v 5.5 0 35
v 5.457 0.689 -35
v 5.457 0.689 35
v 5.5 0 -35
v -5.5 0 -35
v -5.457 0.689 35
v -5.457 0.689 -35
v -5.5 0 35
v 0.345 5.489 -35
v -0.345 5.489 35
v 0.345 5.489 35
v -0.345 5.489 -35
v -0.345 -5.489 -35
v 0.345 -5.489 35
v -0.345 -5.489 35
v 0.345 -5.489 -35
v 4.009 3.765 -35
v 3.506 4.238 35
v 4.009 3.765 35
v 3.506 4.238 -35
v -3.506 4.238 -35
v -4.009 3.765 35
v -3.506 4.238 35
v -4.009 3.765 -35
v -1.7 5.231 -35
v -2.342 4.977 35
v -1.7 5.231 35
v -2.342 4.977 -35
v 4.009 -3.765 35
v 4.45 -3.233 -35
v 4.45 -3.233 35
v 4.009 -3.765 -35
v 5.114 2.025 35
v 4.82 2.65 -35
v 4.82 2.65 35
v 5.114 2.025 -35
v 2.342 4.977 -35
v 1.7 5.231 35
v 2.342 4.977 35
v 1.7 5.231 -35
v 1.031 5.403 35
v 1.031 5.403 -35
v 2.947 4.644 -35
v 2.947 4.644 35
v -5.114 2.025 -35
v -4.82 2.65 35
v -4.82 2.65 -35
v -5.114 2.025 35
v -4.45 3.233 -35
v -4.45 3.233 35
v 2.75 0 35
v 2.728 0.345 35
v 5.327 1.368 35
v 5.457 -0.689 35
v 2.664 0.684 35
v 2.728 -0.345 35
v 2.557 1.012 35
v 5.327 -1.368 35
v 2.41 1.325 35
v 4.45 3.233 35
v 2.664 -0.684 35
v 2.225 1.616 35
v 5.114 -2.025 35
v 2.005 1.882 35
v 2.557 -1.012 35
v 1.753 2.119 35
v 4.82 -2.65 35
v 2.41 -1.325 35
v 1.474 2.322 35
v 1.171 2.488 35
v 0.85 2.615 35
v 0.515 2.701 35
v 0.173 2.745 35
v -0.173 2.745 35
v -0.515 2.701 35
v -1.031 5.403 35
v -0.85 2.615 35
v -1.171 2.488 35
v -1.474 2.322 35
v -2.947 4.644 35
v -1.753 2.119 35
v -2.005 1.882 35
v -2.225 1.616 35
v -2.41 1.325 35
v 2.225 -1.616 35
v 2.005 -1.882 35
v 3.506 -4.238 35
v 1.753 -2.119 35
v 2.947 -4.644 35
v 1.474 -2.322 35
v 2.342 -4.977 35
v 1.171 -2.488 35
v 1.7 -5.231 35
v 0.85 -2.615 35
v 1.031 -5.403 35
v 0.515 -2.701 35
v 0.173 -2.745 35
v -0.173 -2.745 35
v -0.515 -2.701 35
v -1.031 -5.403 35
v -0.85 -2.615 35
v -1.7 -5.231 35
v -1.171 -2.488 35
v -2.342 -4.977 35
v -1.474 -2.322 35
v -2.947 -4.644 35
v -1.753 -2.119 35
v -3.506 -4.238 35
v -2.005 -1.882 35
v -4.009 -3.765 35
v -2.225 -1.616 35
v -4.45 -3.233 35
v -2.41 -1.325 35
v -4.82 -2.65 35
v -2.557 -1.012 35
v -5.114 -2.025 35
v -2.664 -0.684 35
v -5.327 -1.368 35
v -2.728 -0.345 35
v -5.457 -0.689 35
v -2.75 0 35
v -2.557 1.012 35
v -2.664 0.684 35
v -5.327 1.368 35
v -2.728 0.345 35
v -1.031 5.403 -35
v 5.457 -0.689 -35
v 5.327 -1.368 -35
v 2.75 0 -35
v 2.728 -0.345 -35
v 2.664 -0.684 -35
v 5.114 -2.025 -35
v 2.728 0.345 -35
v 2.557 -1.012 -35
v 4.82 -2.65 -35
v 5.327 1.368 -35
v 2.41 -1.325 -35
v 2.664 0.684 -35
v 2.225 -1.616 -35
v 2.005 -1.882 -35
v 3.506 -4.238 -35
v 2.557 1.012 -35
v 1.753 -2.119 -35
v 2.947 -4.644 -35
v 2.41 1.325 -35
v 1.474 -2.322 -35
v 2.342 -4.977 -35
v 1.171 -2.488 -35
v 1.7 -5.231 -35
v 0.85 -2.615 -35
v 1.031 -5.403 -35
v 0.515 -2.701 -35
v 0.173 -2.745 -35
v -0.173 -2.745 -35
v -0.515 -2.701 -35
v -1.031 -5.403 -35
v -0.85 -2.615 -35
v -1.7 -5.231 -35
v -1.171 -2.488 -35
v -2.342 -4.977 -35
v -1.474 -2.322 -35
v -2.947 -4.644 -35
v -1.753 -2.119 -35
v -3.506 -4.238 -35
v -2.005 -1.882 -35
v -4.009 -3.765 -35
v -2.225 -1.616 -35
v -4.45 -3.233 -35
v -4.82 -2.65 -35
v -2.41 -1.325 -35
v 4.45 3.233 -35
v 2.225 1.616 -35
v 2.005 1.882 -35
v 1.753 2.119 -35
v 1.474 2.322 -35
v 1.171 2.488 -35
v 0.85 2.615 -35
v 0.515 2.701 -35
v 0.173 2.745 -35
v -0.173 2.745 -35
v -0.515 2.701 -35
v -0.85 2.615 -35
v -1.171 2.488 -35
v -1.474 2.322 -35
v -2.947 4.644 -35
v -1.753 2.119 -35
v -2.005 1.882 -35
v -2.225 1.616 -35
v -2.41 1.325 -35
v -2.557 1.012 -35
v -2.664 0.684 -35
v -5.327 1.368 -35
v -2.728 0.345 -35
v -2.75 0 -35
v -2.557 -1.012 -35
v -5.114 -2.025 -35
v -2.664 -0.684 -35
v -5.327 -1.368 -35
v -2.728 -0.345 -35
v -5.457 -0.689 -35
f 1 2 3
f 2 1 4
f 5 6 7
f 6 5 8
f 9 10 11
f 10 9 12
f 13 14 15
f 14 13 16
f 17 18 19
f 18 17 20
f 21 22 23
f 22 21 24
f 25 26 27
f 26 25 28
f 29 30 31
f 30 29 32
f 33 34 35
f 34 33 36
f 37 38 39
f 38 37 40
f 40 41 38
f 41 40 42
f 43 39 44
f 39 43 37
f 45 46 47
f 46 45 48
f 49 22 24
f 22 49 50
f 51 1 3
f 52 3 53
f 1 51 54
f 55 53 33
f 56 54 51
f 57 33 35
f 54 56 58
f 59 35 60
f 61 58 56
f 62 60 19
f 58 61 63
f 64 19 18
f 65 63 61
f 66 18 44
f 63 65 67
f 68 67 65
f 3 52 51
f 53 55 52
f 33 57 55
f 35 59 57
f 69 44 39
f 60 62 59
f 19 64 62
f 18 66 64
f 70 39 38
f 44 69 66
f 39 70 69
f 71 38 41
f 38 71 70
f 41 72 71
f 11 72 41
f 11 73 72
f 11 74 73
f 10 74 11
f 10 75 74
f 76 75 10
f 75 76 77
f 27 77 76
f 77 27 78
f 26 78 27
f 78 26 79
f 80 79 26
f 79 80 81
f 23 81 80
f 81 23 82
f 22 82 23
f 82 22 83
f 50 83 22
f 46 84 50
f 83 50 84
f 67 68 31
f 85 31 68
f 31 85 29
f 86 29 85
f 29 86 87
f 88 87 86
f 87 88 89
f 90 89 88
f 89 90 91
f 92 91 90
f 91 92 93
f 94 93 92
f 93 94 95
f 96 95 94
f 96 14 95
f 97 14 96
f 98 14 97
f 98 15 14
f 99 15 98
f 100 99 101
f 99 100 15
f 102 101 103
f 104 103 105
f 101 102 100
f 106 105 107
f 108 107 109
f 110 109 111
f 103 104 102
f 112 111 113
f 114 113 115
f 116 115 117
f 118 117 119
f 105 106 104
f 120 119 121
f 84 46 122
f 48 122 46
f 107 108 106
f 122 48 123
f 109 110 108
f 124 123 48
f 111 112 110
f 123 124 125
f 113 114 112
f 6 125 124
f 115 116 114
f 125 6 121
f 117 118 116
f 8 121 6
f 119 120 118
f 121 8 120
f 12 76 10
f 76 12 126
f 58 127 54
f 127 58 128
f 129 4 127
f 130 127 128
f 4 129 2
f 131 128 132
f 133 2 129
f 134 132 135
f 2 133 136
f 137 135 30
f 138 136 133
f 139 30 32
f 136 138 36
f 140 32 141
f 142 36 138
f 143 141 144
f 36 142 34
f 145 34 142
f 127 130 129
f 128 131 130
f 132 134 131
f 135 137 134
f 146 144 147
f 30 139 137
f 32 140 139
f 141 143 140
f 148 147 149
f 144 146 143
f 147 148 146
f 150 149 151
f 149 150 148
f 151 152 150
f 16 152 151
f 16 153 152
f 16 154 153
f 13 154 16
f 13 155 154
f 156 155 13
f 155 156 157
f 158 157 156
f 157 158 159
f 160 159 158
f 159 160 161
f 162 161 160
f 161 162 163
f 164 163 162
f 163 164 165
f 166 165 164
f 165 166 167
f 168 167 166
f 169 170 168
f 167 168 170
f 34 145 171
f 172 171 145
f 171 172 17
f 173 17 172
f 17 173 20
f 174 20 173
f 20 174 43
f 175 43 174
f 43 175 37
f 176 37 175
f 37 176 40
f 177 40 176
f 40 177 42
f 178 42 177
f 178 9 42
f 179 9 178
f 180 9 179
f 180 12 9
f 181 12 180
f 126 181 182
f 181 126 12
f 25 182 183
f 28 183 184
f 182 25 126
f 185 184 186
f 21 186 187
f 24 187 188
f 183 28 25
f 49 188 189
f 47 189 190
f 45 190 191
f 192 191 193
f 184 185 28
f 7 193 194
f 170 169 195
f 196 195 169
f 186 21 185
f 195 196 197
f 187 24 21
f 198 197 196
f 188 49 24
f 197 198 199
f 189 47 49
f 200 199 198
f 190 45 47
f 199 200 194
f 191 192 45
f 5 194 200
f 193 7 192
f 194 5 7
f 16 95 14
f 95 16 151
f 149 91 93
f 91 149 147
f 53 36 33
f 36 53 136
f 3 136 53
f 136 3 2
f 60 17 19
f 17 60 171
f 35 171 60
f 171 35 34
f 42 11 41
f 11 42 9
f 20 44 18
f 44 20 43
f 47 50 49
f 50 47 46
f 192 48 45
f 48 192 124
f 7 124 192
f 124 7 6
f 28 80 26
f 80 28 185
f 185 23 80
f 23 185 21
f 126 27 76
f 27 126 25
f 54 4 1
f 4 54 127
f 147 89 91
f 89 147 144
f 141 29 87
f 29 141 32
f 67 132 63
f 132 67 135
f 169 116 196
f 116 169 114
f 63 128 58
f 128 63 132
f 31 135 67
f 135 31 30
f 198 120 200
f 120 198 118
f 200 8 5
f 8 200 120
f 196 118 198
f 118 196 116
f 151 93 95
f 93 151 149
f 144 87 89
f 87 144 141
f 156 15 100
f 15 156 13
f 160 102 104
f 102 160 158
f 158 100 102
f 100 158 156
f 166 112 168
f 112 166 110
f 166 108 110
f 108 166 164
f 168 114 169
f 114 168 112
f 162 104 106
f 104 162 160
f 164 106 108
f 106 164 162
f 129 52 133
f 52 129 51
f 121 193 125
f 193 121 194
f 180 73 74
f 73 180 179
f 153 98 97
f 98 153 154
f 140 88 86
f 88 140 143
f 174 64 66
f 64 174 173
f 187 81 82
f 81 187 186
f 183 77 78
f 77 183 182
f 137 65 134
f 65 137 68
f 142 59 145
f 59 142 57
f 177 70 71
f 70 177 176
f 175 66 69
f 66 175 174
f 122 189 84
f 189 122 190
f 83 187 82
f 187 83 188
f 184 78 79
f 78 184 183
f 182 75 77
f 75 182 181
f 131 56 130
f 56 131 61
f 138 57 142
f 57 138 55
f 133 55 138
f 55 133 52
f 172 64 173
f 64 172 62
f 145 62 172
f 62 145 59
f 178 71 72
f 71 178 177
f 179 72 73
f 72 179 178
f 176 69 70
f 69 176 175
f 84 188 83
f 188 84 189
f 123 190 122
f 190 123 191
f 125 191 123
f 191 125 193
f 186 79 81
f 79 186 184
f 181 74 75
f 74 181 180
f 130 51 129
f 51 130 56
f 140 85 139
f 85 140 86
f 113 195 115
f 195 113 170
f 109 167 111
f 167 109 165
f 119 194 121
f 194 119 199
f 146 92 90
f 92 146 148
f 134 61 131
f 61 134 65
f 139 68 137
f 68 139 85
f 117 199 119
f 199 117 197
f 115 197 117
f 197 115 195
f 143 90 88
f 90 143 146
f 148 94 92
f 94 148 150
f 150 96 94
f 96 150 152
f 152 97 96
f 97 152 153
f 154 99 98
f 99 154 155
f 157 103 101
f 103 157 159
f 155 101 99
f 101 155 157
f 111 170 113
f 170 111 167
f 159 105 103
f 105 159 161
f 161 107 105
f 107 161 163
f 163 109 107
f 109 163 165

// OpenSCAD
$fn = 50;


difference() {
	union() {
		translate(v = [0, 0, -35.0000000000]) {
			cylinder(h = 70, r = 5.5000000000);
		}
	}
	union() {
		translate(v = [0, 0, -100.0000000000]) {
			cylinder(h = 200, r = 2.7500000000);
		}
	}
}
